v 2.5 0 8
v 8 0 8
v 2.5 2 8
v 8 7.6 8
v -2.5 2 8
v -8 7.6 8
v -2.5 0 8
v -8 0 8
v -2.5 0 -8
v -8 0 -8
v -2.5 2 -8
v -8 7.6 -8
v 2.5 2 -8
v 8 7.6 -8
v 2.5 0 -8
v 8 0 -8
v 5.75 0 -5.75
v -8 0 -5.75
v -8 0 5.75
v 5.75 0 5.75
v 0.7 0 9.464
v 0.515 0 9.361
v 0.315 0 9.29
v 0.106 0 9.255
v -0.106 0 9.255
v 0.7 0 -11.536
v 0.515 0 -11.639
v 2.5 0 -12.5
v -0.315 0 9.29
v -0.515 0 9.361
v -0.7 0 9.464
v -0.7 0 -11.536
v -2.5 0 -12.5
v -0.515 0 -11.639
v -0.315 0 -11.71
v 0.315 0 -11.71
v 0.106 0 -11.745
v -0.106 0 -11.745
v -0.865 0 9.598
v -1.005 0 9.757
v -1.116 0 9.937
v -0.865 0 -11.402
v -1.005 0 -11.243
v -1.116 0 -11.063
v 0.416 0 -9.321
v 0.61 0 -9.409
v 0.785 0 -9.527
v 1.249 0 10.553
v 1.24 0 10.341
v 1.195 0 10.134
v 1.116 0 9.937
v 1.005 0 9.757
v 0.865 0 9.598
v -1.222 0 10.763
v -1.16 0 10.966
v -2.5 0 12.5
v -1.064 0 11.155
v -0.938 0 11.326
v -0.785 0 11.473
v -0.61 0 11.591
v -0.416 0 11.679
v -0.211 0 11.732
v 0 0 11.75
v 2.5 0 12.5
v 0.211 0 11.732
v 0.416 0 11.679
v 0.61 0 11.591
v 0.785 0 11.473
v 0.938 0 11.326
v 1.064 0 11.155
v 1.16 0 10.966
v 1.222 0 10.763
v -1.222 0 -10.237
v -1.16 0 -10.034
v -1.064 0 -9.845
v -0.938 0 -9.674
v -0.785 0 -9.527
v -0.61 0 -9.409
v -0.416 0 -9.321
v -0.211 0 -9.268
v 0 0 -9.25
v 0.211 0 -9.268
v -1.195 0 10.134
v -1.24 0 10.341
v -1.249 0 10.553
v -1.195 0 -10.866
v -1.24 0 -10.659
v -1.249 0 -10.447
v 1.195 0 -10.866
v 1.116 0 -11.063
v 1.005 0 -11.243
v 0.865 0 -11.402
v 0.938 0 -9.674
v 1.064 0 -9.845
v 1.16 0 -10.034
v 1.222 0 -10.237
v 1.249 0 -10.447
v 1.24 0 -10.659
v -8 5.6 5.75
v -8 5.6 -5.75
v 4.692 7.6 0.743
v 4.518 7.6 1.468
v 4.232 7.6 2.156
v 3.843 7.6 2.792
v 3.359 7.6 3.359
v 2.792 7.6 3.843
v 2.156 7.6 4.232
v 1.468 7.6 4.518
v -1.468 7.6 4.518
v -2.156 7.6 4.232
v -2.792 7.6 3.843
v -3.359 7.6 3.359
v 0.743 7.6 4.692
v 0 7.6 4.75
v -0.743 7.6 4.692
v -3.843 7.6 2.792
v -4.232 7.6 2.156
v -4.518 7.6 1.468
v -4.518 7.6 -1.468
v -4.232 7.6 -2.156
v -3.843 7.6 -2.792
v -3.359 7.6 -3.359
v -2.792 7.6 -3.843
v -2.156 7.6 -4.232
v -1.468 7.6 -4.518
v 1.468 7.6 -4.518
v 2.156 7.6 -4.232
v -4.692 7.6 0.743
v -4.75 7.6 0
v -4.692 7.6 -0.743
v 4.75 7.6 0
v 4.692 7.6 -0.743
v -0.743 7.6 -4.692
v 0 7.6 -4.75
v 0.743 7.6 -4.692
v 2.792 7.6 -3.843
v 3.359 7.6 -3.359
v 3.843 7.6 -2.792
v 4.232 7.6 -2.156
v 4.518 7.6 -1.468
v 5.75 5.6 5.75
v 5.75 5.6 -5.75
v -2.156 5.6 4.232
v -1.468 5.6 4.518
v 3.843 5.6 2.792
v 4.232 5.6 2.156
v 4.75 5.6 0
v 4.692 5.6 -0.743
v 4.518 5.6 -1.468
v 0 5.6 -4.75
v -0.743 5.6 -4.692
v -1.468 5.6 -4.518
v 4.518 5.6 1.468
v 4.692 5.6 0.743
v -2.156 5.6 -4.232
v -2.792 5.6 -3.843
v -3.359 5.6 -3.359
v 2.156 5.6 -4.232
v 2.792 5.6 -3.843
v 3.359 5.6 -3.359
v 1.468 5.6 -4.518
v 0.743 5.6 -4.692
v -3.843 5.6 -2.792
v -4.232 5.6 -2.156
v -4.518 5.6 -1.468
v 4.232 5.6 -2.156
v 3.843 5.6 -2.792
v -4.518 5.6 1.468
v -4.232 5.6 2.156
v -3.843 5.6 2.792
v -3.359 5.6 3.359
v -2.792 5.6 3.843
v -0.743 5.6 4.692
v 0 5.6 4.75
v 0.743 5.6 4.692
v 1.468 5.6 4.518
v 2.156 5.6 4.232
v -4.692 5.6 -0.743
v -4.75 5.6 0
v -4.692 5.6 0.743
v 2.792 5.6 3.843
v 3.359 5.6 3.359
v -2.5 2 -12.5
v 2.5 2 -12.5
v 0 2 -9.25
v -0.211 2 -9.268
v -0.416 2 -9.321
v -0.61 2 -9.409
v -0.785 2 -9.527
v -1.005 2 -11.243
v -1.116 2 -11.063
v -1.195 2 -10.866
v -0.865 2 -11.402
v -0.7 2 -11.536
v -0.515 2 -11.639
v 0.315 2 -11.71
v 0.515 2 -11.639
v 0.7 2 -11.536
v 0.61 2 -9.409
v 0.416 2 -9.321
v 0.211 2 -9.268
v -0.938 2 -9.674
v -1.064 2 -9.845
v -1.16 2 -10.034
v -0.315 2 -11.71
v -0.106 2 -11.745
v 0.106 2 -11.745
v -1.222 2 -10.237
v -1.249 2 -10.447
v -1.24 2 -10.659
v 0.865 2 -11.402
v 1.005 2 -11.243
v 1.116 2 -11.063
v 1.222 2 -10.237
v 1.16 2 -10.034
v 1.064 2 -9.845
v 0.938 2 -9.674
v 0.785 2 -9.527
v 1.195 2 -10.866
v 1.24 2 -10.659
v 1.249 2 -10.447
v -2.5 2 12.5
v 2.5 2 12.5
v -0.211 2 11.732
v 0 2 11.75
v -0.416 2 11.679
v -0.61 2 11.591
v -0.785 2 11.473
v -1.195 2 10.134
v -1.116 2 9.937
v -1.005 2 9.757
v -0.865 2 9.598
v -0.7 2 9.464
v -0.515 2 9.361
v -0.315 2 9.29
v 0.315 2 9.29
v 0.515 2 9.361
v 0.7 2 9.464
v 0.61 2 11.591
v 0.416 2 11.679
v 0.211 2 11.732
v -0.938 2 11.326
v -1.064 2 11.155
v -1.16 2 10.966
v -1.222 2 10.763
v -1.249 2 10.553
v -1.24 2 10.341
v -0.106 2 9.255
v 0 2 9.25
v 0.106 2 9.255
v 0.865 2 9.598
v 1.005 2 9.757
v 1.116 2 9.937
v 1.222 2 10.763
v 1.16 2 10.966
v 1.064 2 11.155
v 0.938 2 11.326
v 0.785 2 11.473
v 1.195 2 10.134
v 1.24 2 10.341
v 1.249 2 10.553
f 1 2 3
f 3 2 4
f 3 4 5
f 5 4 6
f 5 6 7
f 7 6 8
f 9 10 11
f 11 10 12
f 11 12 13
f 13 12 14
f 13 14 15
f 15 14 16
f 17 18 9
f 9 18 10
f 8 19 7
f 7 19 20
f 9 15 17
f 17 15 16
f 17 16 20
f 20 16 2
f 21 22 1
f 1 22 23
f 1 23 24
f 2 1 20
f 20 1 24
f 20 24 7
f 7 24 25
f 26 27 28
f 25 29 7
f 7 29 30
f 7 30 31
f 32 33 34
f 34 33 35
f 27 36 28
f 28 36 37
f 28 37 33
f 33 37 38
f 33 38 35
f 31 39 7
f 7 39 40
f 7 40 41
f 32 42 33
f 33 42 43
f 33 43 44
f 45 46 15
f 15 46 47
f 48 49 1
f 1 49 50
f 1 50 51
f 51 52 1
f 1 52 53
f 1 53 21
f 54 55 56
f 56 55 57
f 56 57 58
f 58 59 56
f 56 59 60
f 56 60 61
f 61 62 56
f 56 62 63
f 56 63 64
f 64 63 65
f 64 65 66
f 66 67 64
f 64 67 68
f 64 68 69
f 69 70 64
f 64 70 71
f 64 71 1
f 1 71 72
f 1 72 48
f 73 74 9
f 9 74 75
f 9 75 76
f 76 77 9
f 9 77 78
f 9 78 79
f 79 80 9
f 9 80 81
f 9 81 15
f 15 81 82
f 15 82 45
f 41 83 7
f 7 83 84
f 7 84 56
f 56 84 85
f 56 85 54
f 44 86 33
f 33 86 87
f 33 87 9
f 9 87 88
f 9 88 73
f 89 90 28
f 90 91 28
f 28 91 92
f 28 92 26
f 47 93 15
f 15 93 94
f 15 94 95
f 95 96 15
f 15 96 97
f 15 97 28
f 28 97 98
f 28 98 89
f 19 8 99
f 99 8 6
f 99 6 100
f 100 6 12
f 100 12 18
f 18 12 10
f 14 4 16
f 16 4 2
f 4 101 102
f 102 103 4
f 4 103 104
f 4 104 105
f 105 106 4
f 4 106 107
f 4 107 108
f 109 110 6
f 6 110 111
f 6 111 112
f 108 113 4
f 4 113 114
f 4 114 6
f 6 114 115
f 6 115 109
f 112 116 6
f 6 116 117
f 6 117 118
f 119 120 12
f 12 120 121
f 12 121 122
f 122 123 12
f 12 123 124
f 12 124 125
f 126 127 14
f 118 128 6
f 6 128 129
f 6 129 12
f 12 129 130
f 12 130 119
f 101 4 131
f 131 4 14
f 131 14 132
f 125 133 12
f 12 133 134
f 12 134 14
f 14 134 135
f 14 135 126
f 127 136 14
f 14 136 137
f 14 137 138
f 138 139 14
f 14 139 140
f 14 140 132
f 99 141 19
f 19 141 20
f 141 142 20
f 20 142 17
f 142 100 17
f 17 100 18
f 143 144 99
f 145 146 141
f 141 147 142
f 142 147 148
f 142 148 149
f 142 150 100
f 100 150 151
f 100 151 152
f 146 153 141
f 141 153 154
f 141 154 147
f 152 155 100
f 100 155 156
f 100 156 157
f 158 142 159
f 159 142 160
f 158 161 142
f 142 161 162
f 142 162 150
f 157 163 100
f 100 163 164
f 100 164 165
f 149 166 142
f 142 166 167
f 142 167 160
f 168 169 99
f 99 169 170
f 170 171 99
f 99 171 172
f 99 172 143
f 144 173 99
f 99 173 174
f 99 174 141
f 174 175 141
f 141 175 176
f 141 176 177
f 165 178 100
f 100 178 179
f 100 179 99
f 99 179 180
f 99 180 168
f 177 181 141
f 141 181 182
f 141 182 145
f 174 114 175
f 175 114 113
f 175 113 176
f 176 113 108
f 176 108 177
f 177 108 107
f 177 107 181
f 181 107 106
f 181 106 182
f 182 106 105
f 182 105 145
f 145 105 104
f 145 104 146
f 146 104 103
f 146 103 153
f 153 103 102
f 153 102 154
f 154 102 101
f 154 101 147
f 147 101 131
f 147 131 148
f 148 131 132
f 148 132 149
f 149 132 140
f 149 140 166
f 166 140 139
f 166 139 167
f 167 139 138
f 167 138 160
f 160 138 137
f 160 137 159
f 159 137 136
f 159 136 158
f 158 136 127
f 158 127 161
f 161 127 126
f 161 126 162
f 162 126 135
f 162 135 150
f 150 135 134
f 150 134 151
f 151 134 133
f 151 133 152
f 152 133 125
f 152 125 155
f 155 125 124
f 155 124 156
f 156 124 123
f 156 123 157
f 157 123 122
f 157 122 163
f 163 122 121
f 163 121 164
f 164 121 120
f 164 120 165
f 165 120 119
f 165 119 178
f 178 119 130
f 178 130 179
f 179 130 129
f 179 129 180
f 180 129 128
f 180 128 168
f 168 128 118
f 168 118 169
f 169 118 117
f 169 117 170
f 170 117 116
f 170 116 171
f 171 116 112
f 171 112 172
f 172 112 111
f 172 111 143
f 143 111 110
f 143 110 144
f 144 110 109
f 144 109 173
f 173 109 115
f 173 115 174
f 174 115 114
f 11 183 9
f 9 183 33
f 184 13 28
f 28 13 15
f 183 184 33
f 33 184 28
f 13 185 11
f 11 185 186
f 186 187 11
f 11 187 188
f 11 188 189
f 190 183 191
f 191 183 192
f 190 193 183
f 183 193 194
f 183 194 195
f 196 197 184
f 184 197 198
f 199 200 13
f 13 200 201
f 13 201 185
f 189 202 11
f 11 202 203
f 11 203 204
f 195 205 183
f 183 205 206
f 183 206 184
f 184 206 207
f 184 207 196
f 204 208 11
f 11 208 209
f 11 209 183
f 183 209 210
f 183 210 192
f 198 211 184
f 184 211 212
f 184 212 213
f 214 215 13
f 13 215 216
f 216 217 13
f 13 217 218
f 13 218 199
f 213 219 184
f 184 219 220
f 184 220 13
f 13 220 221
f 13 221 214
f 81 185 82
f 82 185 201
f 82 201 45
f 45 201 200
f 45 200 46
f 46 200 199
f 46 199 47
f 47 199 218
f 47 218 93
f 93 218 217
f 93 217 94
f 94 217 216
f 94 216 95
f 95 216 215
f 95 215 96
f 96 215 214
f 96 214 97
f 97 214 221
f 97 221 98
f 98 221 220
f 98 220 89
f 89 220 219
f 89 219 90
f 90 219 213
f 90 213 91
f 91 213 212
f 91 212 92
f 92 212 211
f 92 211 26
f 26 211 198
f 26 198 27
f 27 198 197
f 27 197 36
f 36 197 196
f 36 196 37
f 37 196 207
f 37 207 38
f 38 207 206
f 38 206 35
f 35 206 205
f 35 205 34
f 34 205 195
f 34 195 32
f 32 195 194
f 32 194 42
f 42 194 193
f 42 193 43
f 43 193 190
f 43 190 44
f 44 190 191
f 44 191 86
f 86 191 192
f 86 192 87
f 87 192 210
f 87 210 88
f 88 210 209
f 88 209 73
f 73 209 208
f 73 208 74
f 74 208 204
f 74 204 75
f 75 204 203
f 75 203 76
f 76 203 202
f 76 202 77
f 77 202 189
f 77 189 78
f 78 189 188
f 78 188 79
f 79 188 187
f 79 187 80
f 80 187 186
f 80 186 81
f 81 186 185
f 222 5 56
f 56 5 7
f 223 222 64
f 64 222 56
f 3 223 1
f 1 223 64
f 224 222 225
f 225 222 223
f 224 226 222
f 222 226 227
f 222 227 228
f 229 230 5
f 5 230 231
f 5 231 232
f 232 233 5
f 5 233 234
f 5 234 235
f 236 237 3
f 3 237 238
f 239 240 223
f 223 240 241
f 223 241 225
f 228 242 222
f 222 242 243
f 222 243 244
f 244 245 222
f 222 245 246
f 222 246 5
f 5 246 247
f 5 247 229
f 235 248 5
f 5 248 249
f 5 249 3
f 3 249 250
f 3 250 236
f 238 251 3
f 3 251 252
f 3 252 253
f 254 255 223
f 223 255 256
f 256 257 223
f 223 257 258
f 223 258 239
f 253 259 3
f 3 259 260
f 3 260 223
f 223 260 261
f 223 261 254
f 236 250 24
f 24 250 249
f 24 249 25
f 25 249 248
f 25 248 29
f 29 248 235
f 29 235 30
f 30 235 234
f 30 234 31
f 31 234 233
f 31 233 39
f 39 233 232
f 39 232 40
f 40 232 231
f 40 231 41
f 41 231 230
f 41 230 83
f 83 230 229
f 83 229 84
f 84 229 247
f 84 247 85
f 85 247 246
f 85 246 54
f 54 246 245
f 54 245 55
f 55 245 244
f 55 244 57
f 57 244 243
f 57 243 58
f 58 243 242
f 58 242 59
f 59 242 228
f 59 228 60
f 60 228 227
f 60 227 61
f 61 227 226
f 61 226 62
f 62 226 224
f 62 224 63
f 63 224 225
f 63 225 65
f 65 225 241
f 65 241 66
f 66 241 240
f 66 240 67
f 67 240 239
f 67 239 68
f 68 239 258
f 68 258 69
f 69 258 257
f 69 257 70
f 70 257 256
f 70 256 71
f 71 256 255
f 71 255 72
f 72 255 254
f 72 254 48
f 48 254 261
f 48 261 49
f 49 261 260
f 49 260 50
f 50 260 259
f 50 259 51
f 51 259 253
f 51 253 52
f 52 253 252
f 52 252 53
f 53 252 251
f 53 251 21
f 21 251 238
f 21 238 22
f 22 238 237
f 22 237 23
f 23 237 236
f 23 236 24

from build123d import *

# Parameters (mm, degrees)
SKETCH1_W           = 16
SKETCH1_H           = 16
BOSS_EXTRUDE1_DEPTH = 7.6
SKETCH2_W           = 11.5
SKETCH2_H           = 11.5
CUT_EXTRUDE1_DEPTH  = 5.6
SKETCH3_W           = 2.25
SKETCH3_H           = 11.5
CUT_EXTRUDE2_DEPTH  = 5.6
SKETCH4_R           = 4.75
CUT_EXTRUDE3_DEPTH  = 7.6
SKETCH5_W           = 5
SKETCH5_H           = 4.5
BOSS_EXTRUDE2_DEPTH = 2
CUT_EXTRUDE4_REACH  = 17.862
SKETCH6_R           = 1.25


with BuildPart() as part:
    # Sketch1 → Boss-Extrude1 (new body)
    with BuildSketch(Plane(origin=(0, 0, 0), x_dir=(1, 0, 0), z_dir=(0, 1, 0))):
        Rectangle(SKETCH1_W, SKETCH1_H)
    extrude(amount=BOSS_EXTRUDE1_DEPTH)

    # Sketch2 → Cut-Extrude1 (cut)
    with BuildSketch(Plane(origin=(0, 0, 0), x_dir=(1, 0, 0), z_dir=(0, 1, 0))):
        Rectangle(SKETCH2_W, SKETCH2_H)
    extrude(amount=CUT_EXTRUDE1_DEPTH, mode=Mode.SUBTRACT)

    # Sketch3 → Cut-Extrude2 (cut)
    with BuildSketch(Plane.XZ):
        with Locations((-6.875, 0)):
            Rectangle(SKETCH3_W, SKETCH3_H)
    extrude(amount=-CUT_EXTRUDE2_DEPTH, mode=Mode.SUBTRACT)

    # Sketch4 → Cut-Extrude3 (cut)
    with BuildSketch(Plane(origin=(0, 7.6, 0), x_dir=(1, 0, 0), z_dir=(0, 1, 0))):
        with Locations(Location((0, 0, 0), (0, 0, 270))):
            Circle(SKETCH4_R)
    extrude(amount=-CUT_EXTRUDE3_DEPTH, mode=Mode.SUBTRACT)

    # Sketch5 → Boss-Extrude2 (add)
    with BuildSketch(Plane(origin=(0, 0, 0), x_dir=(1, 0, 0), z_dir=(0, 1, 0))):
        with Locations((0, 10.25)):
            Rectangle(SKETCH5_W, SKETCH5_H)
    boss_extrude2 = extrude(amount=BOSS_EXTRUDE2_DEPTH)

    # Sketch6 → Cut-Extrude4 (cut, up to next)
    with BuildSketch(Plane(origin=(0, 2, 0), x_dir=(1, 0, 0), z_dir=(0, 1, 0)), mode=Mode.PRIVATE) as cut_extrude4_sk1:
        with Locations(Location((0, 10.5, 0), (0, 0, 270))):
            Circle(SKETCH6_R)
    cut_extrude4_tool1 = extrude(cut_extrude4_sk1.sketch, amount=-CUT_EXTRUDE4_REACH, mode=Mode.PRIVATE) & part.part
    cut_extrude4 = cut_extrude4_tool1.solids().sort_by_distance((0, 2, -10.5))[0]
    add(cut_extrude4, mode=Mode.SUBTRACT)

    # Mirror1: Boss-Extrude2, Cut-Extrude4 across plane
    add(boss_extrude2.mirror(Plane.XY))
    add(cut_extrude4.mirror(Plane.XY), mode=Mode.SUBTRACT)


solid = part.part
